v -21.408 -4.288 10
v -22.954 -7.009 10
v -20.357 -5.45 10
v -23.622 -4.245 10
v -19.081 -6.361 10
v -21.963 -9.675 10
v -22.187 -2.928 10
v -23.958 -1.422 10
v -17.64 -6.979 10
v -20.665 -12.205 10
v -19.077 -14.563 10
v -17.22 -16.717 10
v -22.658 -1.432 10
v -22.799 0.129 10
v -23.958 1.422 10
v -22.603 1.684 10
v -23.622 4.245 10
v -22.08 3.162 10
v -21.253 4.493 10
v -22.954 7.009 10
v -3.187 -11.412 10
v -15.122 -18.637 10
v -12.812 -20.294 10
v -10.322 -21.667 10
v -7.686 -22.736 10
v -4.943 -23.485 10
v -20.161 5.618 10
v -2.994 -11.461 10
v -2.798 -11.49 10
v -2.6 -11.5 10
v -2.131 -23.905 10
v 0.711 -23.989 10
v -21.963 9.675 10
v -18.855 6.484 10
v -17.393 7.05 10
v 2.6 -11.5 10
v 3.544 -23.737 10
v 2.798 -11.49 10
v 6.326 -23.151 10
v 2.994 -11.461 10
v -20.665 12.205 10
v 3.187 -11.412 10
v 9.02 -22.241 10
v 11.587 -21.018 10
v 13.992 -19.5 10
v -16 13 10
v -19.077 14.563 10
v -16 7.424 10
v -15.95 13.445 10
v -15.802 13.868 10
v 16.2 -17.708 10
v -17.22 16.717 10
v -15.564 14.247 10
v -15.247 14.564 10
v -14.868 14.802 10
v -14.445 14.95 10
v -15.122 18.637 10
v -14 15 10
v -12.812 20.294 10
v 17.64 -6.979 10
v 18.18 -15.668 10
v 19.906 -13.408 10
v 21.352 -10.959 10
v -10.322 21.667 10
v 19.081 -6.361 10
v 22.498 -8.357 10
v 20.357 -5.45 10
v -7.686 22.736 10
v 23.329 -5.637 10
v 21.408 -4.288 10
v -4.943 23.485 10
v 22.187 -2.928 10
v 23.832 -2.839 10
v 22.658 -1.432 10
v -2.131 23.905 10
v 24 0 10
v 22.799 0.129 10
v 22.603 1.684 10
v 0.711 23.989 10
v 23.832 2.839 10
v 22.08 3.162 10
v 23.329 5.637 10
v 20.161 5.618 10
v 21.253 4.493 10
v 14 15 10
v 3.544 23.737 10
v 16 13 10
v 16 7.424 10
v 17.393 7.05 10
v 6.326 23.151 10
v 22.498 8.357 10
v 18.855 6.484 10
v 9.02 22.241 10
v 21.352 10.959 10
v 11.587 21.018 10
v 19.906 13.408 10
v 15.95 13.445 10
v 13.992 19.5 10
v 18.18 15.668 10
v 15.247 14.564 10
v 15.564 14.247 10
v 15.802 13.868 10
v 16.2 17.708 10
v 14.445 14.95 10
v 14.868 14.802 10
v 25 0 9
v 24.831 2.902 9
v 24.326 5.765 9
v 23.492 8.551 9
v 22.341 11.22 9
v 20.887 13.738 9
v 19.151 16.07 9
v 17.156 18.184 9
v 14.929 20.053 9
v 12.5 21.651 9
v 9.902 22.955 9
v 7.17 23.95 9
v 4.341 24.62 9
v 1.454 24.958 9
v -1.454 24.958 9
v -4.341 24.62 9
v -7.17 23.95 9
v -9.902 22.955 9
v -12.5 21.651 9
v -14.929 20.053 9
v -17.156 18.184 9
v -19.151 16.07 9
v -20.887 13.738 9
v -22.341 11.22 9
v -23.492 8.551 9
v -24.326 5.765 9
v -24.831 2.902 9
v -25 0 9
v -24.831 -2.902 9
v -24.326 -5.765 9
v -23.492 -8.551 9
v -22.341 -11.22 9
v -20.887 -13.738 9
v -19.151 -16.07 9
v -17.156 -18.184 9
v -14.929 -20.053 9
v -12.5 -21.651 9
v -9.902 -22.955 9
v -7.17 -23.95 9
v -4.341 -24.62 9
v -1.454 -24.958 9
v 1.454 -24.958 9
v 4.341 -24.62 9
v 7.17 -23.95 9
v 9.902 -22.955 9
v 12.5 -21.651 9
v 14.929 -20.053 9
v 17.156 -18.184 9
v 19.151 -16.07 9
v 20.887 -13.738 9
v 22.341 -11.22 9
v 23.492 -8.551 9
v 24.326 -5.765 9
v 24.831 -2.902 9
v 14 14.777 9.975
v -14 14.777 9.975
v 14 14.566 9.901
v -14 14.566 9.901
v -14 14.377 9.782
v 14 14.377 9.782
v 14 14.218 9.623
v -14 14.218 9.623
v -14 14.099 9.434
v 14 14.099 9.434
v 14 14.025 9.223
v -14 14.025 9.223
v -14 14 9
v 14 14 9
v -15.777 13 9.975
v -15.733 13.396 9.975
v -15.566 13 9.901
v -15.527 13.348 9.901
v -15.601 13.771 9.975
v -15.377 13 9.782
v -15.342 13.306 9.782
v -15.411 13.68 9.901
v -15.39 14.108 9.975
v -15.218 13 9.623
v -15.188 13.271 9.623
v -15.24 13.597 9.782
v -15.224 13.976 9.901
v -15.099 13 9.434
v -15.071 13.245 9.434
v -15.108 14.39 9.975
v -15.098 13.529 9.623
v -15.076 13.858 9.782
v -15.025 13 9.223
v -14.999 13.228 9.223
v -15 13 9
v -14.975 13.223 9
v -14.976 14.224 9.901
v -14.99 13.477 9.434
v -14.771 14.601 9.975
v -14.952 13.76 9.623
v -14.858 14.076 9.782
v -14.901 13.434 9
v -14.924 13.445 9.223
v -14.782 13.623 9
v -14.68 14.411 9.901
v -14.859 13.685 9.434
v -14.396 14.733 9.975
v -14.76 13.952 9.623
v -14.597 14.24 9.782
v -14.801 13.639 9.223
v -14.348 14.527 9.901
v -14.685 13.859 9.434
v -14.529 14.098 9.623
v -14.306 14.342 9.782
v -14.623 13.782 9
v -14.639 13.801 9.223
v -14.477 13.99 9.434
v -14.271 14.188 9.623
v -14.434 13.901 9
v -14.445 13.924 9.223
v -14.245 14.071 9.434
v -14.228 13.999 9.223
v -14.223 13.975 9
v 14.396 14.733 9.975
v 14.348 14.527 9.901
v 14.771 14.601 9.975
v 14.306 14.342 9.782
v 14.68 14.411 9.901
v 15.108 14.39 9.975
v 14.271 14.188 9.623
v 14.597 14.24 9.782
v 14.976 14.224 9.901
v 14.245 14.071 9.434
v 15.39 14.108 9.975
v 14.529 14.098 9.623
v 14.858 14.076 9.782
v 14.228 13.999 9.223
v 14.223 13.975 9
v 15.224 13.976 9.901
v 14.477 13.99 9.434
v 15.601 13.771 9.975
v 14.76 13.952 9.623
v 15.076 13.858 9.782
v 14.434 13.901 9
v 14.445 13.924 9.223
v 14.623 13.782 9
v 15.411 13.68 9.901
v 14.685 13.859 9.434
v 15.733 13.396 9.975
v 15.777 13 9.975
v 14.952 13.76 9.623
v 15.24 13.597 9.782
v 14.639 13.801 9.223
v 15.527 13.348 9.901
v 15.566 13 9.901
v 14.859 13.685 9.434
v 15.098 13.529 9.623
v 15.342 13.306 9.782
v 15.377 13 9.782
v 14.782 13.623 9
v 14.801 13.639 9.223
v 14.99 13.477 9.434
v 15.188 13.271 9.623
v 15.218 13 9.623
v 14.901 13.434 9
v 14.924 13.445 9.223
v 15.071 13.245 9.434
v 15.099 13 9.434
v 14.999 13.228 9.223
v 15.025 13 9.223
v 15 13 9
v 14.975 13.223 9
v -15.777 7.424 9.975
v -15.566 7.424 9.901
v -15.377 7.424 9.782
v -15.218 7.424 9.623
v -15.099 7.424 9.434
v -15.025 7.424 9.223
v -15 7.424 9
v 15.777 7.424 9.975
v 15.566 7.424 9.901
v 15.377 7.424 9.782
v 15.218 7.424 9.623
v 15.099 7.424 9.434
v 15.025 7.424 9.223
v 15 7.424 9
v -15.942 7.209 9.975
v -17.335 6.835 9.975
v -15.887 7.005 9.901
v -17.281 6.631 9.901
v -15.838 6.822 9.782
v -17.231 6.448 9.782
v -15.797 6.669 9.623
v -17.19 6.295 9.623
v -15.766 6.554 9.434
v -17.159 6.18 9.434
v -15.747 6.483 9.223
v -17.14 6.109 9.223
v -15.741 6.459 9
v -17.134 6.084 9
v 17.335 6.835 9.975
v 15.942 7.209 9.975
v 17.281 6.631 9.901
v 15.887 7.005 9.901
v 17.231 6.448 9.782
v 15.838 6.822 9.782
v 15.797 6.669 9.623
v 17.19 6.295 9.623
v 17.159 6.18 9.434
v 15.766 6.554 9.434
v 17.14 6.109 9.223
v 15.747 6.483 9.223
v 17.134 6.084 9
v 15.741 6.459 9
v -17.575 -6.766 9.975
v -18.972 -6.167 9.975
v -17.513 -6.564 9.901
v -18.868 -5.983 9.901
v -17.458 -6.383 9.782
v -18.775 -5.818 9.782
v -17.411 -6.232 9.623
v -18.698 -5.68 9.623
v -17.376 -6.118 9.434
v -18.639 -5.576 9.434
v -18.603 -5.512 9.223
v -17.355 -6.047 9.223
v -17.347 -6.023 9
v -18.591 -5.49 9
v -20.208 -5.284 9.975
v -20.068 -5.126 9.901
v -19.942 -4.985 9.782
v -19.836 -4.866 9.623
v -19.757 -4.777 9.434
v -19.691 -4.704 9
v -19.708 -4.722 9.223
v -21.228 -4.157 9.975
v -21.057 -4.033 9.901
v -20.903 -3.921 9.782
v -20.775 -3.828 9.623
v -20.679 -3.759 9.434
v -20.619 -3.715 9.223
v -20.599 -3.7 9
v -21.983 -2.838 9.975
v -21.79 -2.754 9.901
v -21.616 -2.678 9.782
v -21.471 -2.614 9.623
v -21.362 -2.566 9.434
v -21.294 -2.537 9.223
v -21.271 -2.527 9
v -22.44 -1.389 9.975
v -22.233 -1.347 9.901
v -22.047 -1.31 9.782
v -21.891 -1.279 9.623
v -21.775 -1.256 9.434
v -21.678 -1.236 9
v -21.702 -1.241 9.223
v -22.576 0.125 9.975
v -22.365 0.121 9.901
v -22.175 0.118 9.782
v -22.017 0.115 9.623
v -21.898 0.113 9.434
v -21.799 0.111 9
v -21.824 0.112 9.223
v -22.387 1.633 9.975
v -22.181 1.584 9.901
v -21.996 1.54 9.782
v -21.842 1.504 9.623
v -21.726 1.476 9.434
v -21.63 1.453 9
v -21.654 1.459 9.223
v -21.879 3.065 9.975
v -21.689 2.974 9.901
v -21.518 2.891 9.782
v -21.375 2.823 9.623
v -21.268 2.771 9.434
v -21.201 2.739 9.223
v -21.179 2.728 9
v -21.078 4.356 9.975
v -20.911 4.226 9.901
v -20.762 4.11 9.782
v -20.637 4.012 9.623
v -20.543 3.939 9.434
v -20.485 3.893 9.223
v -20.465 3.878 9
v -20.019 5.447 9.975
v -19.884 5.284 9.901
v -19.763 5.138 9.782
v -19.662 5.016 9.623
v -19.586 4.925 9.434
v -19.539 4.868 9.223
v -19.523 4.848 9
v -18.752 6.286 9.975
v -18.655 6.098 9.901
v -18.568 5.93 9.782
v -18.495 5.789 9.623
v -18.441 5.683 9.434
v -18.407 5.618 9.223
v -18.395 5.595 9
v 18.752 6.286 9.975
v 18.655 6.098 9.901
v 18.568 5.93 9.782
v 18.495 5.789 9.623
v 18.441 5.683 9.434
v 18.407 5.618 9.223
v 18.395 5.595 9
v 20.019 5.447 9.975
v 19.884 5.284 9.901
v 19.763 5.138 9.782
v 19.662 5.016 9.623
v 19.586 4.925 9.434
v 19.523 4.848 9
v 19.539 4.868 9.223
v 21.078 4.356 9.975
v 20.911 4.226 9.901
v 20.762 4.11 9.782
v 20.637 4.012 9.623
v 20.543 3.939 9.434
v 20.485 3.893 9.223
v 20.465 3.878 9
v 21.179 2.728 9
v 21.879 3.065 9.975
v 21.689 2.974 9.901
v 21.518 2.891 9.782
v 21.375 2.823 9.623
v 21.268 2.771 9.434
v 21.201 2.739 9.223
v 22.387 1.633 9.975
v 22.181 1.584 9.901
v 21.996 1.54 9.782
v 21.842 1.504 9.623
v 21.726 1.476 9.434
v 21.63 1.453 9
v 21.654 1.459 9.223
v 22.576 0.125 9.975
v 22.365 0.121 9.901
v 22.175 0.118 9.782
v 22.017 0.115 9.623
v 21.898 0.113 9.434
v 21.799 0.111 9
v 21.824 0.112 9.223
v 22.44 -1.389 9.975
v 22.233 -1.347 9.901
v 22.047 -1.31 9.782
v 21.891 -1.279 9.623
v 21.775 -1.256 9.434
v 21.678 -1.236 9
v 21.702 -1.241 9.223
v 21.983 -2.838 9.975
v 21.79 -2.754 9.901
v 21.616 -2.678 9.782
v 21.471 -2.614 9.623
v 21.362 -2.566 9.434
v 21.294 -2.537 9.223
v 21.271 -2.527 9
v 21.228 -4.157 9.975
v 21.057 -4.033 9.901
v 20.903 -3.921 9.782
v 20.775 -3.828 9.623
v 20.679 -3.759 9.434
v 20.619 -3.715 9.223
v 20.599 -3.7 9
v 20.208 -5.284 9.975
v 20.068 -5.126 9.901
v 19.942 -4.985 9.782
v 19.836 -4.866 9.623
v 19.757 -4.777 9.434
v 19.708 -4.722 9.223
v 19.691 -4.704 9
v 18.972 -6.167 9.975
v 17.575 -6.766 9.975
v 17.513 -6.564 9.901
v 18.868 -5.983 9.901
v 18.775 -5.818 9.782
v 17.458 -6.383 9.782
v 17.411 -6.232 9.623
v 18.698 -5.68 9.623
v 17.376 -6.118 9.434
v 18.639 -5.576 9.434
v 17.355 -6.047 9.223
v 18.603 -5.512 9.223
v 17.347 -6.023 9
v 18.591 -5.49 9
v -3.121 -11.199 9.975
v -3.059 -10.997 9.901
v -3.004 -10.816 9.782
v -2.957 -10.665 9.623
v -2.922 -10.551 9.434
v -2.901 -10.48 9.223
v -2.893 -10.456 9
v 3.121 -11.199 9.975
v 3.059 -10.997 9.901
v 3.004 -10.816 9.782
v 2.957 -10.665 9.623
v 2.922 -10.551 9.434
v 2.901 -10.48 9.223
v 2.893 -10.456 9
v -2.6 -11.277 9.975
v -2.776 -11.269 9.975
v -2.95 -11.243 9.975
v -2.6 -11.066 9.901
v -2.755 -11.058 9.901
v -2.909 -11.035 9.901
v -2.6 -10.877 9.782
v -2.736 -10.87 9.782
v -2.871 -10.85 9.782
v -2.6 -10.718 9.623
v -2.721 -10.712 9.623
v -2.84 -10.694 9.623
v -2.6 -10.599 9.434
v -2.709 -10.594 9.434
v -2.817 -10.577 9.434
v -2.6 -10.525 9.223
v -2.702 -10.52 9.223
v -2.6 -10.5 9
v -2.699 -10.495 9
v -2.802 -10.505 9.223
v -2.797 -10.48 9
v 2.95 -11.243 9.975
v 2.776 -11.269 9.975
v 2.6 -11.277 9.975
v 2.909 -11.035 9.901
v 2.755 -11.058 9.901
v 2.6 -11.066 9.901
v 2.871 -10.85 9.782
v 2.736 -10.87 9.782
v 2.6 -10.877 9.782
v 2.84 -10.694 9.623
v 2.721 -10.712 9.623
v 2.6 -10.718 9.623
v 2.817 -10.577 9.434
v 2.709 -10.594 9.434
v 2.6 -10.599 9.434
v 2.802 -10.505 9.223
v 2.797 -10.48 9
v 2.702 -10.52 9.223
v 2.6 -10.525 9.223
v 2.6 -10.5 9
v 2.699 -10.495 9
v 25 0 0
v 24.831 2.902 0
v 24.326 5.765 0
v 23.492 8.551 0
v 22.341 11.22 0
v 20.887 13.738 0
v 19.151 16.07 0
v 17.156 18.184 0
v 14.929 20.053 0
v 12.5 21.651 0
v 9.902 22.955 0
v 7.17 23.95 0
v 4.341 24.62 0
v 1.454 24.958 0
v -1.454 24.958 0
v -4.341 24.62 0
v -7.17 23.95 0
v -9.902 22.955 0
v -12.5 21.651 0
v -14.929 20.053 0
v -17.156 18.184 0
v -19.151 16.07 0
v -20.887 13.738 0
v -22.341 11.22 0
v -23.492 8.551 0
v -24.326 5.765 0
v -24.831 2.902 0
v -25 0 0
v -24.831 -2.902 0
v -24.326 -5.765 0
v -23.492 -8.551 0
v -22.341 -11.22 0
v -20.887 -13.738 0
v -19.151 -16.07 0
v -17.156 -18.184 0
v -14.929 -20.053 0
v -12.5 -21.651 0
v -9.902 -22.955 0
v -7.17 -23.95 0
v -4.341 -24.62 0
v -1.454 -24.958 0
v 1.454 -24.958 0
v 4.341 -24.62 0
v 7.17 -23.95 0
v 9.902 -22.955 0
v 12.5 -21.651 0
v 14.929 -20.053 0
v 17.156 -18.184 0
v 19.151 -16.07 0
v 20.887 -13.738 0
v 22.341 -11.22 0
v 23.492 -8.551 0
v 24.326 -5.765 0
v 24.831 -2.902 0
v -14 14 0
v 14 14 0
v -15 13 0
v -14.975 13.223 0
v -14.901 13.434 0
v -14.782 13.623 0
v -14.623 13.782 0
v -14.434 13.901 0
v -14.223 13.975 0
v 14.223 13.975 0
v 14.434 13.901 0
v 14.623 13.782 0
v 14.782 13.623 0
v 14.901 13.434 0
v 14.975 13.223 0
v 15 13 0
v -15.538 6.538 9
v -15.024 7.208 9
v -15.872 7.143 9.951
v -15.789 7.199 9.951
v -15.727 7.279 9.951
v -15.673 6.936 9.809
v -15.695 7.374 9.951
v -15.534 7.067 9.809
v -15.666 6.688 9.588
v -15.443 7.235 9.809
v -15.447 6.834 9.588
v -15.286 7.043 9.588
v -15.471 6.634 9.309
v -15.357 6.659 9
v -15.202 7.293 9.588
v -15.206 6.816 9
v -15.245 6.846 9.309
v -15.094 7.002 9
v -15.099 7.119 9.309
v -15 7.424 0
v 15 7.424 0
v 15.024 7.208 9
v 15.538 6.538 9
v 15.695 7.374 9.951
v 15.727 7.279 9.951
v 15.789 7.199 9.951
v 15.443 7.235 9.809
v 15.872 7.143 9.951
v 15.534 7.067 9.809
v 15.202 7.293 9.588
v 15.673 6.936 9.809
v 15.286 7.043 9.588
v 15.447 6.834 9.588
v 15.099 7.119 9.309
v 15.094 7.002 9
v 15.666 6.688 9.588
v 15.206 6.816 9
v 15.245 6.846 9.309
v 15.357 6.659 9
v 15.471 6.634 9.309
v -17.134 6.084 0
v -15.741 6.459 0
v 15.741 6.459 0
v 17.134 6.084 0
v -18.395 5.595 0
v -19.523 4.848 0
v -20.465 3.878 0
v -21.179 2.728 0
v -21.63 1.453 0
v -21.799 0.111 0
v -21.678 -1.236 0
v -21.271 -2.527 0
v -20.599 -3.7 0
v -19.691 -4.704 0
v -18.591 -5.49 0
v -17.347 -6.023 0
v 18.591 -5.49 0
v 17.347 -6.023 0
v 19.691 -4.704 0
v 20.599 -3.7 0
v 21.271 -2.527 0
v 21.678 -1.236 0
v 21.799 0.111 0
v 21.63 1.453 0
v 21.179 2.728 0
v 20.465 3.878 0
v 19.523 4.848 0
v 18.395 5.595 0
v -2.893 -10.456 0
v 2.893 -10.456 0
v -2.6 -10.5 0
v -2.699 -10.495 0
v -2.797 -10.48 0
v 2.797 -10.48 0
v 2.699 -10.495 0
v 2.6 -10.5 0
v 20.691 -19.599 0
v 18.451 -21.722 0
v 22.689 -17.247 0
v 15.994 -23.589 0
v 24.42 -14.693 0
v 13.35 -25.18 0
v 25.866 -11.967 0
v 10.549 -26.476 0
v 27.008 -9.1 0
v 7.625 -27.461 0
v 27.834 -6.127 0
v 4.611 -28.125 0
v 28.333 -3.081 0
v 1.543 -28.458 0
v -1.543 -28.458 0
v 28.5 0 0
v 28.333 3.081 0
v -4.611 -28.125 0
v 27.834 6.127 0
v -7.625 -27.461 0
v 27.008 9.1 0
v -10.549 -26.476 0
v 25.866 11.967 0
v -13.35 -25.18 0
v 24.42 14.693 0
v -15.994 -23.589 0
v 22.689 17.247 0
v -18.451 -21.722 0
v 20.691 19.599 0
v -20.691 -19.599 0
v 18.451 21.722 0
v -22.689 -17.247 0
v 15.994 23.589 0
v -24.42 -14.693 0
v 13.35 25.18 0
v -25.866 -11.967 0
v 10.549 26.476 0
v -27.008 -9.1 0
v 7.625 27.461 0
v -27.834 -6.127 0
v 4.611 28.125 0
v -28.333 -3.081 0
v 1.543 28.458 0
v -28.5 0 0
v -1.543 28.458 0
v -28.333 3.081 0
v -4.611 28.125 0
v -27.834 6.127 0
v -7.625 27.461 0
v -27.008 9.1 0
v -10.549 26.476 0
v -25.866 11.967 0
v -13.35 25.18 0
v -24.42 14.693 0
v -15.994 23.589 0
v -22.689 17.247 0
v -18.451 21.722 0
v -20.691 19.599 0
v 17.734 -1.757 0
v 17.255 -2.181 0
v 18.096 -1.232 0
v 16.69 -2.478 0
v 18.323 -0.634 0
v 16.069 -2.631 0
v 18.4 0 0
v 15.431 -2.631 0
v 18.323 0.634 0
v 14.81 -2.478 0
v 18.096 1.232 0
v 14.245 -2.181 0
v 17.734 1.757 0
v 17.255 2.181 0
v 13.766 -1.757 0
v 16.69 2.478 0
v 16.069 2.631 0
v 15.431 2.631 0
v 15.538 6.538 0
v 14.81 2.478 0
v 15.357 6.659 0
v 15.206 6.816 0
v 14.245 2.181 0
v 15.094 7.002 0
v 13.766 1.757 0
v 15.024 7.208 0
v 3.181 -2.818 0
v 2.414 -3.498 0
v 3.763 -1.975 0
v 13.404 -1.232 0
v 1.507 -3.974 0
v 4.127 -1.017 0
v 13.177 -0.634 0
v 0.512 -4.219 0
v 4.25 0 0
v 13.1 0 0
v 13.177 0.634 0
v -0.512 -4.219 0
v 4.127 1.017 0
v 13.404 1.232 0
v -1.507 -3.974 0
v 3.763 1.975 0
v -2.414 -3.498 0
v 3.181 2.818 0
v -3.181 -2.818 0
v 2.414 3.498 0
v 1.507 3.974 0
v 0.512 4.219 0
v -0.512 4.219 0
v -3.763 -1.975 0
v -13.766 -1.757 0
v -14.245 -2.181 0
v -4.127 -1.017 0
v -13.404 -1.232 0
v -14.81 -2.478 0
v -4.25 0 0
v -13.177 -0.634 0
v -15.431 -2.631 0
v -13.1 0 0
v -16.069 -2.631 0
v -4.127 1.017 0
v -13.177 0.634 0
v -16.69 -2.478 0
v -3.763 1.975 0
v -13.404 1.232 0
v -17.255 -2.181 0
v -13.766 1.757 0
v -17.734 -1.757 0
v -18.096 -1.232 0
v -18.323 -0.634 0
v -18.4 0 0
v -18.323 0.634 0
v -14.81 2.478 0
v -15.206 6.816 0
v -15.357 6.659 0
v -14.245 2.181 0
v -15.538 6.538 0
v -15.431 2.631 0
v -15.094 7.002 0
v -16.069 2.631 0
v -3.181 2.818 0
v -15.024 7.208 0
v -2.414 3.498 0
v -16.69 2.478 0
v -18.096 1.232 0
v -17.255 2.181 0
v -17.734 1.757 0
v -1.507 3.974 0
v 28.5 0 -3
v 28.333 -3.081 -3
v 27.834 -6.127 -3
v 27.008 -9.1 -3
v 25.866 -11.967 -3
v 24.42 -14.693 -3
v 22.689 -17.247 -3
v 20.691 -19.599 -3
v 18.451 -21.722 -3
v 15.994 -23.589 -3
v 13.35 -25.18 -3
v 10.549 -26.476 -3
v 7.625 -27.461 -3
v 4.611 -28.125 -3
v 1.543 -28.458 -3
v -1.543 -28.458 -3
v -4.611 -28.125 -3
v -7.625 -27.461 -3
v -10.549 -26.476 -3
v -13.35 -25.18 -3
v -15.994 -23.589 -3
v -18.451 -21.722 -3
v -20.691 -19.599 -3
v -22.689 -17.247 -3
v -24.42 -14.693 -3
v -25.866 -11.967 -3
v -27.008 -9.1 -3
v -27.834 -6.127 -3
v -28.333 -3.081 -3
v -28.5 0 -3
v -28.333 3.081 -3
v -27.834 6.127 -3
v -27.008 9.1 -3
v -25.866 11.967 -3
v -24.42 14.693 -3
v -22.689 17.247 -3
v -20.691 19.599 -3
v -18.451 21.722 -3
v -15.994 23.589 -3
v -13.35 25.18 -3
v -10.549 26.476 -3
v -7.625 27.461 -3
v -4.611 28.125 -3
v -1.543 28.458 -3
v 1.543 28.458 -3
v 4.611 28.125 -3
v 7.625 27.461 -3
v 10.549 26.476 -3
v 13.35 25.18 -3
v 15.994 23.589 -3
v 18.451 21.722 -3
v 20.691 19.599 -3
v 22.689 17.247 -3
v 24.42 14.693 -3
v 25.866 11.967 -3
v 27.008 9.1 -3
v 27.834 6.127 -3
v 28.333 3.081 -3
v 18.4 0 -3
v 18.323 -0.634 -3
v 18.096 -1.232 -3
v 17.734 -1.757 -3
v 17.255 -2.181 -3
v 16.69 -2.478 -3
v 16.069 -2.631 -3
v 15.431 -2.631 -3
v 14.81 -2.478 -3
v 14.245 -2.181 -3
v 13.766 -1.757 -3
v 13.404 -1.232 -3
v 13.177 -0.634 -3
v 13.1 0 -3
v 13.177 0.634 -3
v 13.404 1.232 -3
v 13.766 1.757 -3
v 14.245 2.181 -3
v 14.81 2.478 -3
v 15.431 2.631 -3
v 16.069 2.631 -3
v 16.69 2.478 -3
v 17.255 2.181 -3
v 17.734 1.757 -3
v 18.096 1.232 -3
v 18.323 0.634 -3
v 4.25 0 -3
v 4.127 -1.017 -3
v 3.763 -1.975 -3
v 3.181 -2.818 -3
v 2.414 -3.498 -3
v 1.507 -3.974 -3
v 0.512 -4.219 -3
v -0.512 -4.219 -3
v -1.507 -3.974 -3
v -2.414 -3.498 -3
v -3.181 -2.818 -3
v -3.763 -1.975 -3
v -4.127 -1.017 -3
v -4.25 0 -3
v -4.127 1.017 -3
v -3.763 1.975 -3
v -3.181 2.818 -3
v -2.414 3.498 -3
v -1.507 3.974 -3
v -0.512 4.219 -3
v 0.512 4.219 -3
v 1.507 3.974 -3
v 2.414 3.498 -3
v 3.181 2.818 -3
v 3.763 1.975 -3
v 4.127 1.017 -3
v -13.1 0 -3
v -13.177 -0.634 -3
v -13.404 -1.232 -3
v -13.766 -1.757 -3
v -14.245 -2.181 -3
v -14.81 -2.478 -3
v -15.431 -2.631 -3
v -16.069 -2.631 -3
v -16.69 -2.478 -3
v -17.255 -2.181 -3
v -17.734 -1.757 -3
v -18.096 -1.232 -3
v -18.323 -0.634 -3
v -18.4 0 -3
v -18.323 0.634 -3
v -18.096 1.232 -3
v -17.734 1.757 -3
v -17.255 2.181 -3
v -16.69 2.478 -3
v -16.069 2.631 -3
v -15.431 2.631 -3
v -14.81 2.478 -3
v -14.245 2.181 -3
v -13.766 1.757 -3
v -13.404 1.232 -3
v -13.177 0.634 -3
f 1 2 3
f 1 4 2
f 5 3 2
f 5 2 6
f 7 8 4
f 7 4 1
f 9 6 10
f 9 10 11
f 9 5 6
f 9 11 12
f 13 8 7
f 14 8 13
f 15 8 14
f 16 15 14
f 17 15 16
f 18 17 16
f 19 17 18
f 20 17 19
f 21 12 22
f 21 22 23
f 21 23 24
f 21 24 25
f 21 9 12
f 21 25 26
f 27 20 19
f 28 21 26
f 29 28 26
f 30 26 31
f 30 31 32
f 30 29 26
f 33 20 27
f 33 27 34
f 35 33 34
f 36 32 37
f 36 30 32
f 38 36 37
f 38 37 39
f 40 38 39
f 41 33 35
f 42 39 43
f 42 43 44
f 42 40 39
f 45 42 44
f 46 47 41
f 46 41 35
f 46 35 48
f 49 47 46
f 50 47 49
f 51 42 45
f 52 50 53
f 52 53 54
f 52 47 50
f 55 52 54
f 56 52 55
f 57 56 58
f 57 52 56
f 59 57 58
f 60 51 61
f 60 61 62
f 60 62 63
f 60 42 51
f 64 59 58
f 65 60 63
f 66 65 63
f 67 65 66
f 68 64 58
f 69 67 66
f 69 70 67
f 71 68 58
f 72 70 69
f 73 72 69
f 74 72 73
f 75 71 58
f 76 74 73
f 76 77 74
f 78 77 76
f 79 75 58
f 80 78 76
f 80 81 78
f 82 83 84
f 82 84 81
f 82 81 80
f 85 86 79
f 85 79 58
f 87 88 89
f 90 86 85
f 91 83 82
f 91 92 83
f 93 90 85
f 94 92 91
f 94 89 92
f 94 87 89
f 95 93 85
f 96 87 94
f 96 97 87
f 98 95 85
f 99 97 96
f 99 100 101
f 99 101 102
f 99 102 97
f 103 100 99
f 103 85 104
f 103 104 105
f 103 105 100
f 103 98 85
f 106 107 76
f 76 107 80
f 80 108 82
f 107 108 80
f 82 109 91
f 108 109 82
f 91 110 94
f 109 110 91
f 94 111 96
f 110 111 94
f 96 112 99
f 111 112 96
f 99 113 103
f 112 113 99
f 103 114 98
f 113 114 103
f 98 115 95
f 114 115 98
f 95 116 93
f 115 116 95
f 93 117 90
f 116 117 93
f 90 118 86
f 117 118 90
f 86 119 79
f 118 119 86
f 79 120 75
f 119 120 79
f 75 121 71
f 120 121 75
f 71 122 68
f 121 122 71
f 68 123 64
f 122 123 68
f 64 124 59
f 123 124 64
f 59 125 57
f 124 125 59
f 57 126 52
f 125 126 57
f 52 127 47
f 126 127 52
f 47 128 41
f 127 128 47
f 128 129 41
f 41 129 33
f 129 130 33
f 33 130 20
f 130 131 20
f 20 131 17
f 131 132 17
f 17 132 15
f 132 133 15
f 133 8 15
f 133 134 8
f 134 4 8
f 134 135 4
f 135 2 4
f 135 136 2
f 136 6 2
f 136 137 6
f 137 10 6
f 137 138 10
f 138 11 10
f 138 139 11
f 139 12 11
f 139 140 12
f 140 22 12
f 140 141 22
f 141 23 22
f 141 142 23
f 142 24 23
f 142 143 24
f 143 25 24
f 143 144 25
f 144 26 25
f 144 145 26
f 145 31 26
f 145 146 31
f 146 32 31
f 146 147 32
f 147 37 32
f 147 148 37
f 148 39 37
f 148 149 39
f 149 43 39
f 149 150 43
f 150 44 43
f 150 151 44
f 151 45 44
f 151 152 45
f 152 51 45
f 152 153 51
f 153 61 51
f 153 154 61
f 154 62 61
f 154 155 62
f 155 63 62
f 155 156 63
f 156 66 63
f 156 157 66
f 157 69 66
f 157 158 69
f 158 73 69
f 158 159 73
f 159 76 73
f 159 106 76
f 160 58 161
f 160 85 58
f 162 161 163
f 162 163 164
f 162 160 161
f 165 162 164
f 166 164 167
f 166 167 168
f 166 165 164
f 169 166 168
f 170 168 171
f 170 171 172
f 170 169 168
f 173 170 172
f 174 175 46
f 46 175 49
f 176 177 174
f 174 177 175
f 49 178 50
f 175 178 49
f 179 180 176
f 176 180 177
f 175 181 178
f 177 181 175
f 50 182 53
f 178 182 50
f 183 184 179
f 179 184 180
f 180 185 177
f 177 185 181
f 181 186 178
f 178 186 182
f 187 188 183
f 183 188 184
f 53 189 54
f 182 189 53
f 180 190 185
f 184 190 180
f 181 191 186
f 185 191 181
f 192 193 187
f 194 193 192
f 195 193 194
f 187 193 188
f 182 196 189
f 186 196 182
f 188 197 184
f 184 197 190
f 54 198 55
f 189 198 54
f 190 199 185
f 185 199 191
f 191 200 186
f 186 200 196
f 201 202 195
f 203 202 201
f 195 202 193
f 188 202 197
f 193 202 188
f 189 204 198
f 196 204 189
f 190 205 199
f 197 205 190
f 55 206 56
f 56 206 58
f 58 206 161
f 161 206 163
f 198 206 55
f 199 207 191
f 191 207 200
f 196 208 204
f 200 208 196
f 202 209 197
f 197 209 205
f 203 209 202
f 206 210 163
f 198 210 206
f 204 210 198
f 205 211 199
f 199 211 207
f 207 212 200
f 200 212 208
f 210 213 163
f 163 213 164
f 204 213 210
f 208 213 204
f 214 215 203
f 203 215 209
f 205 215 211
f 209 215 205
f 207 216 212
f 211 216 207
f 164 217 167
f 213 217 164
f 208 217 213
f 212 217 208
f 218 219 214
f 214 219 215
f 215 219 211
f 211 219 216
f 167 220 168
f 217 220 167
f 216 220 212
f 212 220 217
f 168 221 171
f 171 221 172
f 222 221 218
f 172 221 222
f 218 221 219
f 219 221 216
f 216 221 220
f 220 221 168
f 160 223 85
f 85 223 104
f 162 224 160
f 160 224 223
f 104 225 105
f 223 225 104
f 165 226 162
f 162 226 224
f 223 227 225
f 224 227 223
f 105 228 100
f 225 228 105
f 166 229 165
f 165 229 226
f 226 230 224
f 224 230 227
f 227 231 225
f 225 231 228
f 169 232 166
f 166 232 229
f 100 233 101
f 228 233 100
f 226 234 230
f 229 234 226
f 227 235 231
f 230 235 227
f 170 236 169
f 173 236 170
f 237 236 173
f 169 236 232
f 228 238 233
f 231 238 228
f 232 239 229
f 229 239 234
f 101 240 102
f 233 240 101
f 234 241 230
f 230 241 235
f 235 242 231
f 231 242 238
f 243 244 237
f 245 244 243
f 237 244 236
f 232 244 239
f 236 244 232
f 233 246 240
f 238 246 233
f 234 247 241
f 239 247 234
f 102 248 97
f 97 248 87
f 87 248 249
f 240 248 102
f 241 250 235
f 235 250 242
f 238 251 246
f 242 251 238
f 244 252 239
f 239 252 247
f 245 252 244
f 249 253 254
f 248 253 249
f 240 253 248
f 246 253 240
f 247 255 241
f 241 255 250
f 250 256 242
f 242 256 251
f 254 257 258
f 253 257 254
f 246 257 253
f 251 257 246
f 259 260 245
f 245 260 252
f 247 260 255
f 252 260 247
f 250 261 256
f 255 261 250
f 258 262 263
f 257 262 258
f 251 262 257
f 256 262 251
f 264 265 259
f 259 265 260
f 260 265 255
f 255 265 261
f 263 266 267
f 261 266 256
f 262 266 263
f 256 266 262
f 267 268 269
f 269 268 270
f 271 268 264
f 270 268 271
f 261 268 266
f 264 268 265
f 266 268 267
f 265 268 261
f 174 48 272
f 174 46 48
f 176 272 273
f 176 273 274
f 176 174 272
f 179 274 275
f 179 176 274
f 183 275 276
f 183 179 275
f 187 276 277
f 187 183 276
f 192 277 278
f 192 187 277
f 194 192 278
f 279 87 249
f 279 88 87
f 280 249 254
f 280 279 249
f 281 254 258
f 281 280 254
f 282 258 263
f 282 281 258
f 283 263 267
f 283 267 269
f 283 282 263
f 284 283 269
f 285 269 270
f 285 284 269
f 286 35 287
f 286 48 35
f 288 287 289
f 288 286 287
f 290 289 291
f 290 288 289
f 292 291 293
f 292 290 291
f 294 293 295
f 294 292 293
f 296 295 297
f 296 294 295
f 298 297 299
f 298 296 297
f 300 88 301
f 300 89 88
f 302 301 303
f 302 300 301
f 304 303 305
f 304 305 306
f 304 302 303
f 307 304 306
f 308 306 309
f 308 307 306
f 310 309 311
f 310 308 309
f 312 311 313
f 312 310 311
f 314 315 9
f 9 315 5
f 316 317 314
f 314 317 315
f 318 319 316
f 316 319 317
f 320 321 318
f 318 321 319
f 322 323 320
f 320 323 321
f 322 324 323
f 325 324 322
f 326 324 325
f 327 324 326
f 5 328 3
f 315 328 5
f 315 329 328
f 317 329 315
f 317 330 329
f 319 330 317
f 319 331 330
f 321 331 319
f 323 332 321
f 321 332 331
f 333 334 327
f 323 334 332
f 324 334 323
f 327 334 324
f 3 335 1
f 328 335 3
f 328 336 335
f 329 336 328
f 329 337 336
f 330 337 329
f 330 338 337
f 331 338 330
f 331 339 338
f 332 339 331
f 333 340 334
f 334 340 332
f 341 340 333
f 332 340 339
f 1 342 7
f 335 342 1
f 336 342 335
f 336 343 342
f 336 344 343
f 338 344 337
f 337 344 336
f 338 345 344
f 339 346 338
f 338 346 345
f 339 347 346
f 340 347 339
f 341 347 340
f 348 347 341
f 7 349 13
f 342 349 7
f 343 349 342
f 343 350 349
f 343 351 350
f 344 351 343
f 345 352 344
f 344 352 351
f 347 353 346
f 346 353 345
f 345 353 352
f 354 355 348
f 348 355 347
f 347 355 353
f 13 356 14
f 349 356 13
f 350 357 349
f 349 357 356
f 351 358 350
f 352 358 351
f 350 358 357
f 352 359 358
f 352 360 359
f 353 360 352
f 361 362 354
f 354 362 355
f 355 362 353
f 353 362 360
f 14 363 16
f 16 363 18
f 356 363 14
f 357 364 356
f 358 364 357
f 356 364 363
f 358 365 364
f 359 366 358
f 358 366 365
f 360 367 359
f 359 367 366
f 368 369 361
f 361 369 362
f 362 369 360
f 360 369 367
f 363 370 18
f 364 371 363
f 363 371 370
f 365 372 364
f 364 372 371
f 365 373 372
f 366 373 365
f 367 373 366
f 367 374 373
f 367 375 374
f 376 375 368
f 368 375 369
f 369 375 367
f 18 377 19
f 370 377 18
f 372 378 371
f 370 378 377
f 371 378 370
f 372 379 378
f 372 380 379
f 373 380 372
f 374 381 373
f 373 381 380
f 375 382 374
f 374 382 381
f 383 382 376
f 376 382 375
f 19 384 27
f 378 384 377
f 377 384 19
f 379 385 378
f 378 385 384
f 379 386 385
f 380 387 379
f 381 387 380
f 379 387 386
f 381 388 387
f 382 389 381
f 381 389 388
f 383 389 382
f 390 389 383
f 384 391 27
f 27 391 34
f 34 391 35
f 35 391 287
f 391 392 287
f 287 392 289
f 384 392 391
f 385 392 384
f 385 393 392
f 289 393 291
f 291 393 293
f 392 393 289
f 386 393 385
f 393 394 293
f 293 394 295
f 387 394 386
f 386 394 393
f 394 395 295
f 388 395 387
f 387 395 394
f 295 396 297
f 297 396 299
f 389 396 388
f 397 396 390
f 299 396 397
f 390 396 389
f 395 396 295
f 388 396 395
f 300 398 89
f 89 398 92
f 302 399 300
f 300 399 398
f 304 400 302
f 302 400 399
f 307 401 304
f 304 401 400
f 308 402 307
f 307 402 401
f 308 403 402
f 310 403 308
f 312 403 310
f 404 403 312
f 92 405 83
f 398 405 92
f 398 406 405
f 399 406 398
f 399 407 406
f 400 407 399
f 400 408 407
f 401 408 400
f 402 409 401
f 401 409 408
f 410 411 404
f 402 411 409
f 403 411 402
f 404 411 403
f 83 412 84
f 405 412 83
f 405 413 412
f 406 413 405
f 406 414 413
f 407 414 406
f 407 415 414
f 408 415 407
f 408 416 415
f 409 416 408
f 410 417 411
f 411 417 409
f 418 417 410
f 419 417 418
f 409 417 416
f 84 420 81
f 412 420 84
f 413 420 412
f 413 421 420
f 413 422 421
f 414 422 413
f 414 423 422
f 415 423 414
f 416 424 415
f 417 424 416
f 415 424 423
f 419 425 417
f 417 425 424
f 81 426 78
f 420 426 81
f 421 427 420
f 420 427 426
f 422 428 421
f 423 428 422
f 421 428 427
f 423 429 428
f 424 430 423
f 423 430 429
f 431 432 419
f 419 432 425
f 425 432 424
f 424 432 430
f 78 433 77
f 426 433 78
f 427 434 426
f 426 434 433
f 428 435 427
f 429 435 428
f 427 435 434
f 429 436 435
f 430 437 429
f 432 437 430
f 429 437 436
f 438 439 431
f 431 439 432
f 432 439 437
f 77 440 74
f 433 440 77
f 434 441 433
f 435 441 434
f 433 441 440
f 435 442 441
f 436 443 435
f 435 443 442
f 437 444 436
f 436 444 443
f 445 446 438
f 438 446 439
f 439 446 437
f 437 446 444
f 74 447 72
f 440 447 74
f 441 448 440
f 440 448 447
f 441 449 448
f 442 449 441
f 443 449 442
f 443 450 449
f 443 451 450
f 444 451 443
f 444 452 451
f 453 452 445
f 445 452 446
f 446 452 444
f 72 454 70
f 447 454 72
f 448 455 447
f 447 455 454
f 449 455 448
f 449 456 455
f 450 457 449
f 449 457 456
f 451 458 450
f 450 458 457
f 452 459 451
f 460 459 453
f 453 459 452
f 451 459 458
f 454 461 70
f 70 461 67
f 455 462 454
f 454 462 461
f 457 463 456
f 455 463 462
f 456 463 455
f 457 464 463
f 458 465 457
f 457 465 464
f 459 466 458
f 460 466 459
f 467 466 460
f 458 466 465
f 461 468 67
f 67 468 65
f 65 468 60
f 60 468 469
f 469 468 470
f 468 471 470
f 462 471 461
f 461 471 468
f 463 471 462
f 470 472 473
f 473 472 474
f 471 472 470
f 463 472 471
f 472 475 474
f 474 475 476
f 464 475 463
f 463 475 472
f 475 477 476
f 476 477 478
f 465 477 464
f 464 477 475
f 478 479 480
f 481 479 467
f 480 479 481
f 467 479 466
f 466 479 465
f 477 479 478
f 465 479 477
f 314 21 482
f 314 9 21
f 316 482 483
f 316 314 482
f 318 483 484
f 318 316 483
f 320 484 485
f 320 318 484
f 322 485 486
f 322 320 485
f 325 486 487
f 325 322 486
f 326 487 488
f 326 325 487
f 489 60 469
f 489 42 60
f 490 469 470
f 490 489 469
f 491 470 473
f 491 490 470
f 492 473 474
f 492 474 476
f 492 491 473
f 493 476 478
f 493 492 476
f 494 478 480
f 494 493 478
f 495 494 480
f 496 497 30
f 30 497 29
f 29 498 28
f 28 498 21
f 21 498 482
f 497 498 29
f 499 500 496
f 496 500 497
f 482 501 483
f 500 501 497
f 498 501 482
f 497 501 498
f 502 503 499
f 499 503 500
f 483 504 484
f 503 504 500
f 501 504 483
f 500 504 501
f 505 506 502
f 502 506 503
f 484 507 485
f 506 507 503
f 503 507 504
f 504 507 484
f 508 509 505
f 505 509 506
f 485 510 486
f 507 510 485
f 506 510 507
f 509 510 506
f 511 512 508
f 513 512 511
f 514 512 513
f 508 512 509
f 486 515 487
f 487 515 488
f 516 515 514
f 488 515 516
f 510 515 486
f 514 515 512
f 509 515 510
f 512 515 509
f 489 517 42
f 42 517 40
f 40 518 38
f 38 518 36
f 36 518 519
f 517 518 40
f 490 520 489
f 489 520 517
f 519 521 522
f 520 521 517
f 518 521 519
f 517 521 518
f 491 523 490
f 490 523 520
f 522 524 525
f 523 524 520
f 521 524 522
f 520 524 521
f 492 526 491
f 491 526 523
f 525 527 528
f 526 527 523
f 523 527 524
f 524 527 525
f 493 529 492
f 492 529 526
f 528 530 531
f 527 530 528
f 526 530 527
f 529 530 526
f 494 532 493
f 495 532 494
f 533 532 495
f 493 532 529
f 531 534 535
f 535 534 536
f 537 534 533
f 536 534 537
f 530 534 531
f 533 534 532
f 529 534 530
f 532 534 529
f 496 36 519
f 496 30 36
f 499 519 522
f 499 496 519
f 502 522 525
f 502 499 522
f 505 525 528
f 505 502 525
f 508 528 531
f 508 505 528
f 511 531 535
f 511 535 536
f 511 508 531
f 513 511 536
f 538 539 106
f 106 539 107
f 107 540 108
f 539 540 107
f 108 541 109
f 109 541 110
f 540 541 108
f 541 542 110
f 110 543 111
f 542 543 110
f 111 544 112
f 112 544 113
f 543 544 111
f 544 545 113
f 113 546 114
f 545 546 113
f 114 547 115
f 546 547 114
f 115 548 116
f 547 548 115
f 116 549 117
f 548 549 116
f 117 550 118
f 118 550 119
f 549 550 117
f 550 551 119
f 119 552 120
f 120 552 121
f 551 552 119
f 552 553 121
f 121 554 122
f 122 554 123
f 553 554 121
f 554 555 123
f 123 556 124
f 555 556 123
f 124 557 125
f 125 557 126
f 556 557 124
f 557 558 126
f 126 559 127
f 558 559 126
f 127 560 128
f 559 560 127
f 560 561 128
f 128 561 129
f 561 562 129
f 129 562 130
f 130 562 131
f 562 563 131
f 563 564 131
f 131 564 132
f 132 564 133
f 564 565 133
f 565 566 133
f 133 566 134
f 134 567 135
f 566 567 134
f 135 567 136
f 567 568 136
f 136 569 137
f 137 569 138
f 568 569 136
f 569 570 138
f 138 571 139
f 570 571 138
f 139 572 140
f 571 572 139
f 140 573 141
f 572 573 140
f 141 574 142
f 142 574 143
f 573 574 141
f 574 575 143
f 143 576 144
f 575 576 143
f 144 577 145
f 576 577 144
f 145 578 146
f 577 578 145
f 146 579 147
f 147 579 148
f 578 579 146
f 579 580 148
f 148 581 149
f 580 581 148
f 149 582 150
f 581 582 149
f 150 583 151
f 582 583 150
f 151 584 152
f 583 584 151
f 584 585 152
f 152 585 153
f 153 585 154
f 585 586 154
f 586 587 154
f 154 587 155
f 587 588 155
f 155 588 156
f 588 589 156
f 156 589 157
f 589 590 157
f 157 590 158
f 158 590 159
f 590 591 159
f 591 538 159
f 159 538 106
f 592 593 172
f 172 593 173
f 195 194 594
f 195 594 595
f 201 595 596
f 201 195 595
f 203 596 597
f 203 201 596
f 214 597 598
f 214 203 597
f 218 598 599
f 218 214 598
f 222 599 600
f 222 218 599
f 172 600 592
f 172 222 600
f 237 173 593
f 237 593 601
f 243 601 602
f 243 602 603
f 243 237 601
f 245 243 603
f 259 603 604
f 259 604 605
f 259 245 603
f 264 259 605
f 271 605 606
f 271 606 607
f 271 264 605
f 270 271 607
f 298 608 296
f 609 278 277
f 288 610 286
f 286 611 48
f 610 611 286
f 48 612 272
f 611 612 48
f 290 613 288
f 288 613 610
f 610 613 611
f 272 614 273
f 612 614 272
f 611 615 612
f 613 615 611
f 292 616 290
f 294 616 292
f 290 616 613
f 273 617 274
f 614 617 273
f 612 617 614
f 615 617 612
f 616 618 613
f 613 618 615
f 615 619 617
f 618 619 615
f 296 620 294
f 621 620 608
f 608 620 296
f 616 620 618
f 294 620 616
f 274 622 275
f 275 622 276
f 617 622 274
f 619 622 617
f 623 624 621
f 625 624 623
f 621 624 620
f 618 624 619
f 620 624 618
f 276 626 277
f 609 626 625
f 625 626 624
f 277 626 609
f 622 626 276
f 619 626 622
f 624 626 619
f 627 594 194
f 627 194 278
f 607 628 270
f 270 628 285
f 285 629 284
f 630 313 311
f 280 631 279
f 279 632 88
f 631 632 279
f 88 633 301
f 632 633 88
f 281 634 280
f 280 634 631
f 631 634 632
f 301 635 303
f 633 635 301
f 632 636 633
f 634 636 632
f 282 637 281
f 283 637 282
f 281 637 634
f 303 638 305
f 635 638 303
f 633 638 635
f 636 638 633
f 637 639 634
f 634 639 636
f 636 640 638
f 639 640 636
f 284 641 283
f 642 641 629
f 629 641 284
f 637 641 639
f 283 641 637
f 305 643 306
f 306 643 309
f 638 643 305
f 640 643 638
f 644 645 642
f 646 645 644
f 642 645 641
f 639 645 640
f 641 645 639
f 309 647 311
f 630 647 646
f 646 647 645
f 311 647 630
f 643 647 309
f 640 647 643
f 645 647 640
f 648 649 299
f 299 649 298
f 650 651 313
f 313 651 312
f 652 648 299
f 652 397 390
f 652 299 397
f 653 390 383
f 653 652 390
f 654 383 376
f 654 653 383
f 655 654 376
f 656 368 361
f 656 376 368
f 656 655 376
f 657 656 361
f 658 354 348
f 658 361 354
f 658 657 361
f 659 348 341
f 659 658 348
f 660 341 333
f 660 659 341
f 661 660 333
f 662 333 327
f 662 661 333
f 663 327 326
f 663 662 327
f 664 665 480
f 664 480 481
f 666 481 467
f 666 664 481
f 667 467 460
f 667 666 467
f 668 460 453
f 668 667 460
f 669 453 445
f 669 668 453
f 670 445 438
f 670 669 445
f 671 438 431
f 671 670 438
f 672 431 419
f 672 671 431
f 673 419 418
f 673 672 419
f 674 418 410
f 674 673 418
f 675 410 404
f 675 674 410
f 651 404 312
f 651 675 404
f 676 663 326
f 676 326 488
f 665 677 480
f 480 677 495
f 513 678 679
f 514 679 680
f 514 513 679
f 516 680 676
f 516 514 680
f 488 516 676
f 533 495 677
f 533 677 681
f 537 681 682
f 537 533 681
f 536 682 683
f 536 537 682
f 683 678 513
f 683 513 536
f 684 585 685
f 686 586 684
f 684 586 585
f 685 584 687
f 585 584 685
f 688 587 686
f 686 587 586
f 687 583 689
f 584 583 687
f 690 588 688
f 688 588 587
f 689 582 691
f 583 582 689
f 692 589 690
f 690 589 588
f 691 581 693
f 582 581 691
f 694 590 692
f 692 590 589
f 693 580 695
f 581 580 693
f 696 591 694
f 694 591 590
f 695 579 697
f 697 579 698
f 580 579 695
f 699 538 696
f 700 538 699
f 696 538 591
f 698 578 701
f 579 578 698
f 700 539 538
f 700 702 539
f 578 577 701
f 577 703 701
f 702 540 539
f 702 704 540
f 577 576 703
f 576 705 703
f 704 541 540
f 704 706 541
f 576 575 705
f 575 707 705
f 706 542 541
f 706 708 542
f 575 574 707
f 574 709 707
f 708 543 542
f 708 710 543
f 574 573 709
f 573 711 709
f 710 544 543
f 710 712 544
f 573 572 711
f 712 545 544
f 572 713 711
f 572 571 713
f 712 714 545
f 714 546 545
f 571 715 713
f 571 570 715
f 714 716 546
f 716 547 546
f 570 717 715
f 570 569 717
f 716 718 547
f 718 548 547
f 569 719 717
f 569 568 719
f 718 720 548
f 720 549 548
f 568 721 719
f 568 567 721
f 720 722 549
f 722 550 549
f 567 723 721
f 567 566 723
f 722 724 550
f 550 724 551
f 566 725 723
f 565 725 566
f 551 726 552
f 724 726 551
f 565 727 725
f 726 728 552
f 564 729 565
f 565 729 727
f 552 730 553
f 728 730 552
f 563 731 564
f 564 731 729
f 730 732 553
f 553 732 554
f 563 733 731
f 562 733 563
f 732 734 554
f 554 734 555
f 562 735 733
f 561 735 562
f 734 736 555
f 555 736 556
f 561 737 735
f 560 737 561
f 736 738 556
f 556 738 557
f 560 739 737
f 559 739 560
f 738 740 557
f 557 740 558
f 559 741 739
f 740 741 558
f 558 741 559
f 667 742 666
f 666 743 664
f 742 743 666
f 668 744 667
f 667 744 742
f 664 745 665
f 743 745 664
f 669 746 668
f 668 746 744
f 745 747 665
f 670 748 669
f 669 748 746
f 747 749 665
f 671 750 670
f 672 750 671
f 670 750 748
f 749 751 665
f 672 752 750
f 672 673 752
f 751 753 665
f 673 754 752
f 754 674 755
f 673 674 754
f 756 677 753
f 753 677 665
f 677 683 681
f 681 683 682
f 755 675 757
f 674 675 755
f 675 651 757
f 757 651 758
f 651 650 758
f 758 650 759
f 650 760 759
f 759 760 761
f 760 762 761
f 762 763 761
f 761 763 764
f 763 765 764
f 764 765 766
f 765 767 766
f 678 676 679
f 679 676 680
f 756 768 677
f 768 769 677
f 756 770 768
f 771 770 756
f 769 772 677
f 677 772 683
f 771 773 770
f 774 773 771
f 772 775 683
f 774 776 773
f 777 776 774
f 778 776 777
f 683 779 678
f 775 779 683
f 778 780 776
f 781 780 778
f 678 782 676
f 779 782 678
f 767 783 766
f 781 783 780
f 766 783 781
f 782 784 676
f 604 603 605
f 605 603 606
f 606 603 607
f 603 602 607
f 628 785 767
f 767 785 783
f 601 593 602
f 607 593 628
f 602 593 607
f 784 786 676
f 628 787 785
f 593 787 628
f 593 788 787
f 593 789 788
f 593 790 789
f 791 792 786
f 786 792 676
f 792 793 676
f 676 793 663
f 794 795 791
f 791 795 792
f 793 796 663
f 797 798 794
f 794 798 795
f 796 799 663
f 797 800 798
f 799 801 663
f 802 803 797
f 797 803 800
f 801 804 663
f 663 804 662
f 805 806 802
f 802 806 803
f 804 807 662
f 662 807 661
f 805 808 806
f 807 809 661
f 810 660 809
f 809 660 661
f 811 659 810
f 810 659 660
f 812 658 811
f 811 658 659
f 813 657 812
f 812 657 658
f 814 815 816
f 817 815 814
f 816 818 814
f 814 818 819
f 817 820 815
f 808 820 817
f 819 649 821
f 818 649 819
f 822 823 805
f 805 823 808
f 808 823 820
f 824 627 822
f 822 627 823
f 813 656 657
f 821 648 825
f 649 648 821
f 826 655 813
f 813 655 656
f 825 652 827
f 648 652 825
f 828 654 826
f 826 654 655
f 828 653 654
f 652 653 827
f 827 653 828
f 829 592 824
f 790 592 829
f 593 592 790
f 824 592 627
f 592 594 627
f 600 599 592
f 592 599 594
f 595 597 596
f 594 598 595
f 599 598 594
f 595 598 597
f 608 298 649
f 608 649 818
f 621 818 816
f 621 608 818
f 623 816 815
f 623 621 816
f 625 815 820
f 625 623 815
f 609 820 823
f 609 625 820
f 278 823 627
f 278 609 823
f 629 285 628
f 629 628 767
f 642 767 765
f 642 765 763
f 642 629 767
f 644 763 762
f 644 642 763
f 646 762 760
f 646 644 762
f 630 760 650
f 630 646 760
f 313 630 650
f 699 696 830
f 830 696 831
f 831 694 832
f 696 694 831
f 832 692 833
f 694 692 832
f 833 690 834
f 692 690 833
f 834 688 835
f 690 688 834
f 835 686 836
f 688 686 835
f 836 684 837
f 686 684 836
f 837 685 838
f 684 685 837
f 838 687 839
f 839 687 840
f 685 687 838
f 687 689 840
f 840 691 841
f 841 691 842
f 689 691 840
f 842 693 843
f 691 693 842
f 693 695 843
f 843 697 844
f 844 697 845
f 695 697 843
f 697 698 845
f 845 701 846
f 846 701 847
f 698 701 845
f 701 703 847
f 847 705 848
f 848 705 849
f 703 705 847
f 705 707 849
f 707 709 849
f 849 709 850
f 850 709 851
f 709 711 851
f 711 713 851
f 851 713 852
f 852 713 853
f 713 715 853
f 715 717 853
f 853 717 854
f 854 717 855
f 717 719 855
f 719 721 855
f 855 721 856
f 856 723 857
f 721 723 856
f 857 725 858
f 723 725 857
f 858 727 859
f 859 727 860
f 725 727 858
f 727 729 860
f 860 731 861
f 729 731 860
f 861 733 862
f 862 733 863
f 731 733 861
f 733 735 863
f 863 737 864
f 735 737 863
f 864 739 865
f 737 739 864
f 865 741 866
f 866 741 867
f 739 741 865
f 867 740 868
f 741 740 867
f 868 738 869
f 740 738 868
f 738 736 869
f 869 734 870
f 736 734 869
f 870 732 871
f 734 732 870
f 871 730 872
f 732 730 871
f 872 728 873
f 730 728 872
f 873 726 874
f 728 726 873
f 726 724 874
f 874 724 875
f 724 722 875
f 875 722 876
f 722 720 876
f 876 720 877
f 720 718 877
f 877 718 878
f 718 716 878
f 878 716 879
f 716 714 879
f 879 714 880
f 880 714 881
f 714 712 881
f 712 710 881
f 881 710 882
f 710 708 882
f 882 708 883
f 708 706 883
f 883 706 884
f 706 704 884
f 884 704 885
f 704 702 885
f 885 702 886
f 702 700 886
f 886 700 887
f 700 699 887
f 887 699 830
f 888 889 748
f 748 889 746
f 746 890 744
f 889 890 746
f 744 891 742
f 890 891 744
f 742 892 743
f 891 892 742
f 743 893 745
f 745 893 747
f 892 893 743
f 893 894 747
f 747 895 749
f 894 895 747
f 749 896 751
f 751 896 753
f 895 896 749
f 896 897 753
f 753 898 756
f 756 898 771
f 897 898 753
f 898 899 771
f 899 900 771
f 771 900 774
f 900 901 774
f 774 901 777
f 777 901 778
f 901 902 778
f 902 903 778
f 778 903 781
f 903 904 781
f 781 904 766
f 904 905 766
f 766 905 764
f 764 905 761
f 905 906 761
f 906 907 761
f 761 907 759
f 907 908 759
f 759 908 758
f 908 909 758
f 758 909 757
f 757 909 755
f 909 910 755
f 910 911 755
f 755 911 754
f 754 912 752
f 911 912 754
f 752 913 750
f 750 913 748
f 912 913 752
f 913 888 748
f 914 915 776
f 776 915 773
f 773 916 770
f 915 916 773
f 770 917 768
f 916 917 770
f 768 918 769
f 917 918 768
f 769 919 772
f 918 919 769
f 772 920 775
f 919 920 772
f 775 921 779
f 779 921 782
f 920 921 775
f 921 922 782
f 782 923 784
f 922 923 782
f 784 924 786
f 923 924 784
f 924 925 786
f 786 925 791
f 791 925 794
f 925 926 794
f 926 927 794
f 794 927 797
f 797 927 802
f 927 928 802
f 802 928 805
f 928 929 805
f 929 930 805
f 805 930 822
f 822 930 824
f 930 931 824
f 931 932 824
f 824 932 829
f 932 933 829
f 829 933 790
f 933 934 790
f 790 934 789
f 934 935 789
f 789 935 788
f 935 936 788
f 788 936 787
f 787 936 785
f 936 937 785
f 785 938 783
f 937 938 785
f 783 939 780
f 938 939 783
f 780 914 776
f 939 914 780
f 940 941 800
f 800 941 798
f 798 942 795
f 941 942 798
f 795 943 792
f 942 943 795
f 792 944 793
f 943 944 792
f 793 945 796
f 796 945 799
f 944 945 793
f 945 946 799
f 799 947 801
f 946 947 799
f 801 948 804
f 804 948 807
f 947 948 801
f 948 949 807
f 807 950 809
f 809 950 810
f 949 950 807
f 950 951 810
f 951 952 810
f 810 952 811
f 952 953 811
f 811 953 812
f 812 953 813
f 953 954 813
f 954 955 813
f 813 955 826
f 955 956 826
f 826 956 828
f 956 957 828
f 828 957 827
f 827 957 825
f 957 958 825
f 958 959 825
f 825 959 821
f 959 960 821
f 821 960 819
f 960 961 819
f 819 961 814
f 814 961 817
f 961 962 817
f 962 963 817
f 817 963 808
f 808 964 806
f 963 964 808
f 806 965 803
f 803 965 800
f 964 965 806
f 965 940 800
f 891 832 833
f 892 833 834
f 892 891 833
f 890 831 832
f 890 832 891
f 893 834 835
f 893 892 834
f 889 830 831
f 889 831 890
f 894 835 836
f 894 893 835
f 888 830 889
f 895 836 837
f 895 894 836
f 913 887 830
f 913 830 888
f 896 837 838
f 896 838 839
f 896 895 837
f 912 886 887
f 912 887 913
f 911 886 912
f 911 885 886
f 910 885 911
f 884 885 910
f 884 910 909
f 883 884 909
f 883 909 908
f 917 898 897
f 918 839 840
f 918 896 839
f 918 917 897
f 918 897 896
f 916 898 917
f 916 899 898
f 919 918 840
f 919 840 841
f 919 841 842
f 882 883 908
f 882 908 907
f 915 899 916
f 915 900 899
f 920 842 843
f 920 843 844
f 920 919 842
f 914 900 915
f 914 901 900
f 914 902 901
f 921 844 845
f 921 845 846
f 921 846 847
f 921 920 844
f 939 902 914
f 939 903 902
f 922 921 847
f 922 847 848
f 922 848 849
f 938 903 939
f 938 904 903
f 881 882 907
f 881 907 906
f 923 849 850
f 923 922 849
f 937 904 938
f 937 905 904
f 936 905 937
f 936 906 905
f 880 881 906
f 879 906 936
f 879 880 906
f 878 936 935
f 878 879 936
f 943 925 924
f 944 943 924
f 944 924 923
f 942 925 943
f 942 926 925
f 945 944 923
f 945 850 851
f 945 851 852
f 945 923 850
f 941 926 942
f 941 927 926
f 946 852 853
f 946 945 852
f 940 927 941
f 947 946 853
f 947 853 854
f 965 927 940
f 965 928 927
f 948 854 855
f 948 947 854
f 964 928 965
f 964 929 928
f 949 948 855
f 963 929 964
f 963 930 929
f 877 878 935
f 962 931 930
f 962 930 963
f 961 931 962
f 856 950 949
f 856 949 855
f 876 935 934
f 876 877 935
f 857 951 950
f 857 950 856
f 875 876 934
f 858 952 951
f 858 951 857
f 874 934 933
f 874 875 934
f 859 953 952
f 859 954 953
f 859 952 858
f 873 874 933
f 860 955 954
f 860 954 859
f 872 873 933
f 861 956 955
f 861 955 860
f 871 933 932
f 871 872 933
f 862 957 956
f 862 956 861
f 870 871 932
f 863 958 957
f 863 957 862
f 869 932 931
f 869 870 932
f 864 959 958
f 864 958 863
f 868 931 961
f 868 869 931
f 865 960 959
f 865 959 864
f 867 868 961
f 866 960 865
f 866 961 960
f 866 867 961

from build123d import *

# Parameters (mm, degrees)
SKETCH_R          = 25
PAD_DEPTH         = 10
SKETCH001_R       = 28.5
PAD001_DEPTH      = 3
SKETCH002_R       = 4.25
SKETCH002_R_2     = 2.65
POCKET_DEPTH      = 10.501
POCKET_DEPTH_BACK = -2.501
FILLET_R          = 1
FILLET001_R       = 1
CHAMFER_SIZE      = 1


with BuildPart() as part:
    # Sketch → Pad (new body)
    with BuildSketch(Plane.XY):
        Circle(SKETCH_R)
        with BuildLine():
            ThreePointArc((17.347253, -6.023093), (21.799021, 0.111063), (17.133775, 6.08447))
            Line((15, 6.657422), (17.133775, 6.08447))
            Line((15, 14), (15, 6.657422))
            Line((-15, 14), (15, 14))
            Line((-15, 14), (-15, 6.657422))
            Line((-17.133775, 6.08447), (-15, 6.657422))
            ThreePointArc((-17.133775, 6.08447), (-21.799021, 0.111063), (-17.347253, -6.023093))
            Line((-17.347253, -6.023093), (-2.75, -10.5))
            Line((-2.75, -10.5), (2.75, -10.5))
            Line((17.347253, -6.023093), (2.75, -10.5))
        make_face(mode=Mode.SUBTRACT)
    extrude(amount=PAD_DEPTH)

    # Sketch001 (on Face12 of Pad) → Pad001 (join)
    with BuildSketch(Plane(origin=(0, 0, 0), x_dir=(1, 0, 0), z_dir=(0, 0, -1))):
        Circle(SKETCH001_R)
    extrude(amount=PAD001_DEPTH)

    # Sketch002 → Pocket (cut, two sides)
    with BuildSketch(Plane(origin=(0, 0, -0.5), x_dir=(1, 0, 0), z_dir=(0, 0, -1))) as pocket_sk:
        Circle(SKETCH002_R)
        with Locations((-15.75, 0)):
            Circle(SKETCH002_R_2)
        with Locations((15.75, 0)):
            Circle(SKETCH002_R_2)
    extrude(amount=-POCKET_DEPTH, mode=Mode.SUBTRACT)
    extrude(pocket_sk.sketch, amount=-POCKET_DEPTH_BACK, mode=Mode.SUBTRACT)

    # Fillet
    fillet_edges = [part.edges().sort_by_distance(p)[0] for p in [
        (15, 6.657422, 5),
        (15, 14, 5),
        (-15, 6.657422, 5),
        (-15, 14, 5),
        (-2.75, -10.5, 5),
        (2.75, -10.5, 5),
    ]]
    fillet(fillet_edges, radius=FILLET_R)

    # Fillet001
    fillet001_edges = [part.edges().sort_by_distance(p)[0] for p in [
        (0, 14, 10),
        (-15, 10.212165, 10),
        (-21.799021, 0.111063, 10),
        (-10.120283, -8.23957, 10),
        (0, -10.5, 10),
        (10.120283, -8.23957, 10),
        (21.799021, 0.111063, 10),
        (15, 10.212165, 10),
        (14.707107, 13.707107, 10),
        (15.206486, 6.815778, 10),
        (16.437223, 6.271505, 10),
        (-16.437223, 6.271505, 10),
        (-15.206486, 6.815778, 10),
        (-14.707107, 13.707107, 10),
        (-2.748344, -10.488951, 10),
        (2.748344, -10.488951, 10),
    ]]
    fillet(fillet001_edges, radius=FILLET001_R)

    # Chamfer
    chamfer_edges = [part.edges().sort_by_distance(p)[0] for p in [
        (-25, 0, 10),
    ]]
    chamfer(chamfer_edges, length=CHAMFER_SIZE)


solid = part.part
